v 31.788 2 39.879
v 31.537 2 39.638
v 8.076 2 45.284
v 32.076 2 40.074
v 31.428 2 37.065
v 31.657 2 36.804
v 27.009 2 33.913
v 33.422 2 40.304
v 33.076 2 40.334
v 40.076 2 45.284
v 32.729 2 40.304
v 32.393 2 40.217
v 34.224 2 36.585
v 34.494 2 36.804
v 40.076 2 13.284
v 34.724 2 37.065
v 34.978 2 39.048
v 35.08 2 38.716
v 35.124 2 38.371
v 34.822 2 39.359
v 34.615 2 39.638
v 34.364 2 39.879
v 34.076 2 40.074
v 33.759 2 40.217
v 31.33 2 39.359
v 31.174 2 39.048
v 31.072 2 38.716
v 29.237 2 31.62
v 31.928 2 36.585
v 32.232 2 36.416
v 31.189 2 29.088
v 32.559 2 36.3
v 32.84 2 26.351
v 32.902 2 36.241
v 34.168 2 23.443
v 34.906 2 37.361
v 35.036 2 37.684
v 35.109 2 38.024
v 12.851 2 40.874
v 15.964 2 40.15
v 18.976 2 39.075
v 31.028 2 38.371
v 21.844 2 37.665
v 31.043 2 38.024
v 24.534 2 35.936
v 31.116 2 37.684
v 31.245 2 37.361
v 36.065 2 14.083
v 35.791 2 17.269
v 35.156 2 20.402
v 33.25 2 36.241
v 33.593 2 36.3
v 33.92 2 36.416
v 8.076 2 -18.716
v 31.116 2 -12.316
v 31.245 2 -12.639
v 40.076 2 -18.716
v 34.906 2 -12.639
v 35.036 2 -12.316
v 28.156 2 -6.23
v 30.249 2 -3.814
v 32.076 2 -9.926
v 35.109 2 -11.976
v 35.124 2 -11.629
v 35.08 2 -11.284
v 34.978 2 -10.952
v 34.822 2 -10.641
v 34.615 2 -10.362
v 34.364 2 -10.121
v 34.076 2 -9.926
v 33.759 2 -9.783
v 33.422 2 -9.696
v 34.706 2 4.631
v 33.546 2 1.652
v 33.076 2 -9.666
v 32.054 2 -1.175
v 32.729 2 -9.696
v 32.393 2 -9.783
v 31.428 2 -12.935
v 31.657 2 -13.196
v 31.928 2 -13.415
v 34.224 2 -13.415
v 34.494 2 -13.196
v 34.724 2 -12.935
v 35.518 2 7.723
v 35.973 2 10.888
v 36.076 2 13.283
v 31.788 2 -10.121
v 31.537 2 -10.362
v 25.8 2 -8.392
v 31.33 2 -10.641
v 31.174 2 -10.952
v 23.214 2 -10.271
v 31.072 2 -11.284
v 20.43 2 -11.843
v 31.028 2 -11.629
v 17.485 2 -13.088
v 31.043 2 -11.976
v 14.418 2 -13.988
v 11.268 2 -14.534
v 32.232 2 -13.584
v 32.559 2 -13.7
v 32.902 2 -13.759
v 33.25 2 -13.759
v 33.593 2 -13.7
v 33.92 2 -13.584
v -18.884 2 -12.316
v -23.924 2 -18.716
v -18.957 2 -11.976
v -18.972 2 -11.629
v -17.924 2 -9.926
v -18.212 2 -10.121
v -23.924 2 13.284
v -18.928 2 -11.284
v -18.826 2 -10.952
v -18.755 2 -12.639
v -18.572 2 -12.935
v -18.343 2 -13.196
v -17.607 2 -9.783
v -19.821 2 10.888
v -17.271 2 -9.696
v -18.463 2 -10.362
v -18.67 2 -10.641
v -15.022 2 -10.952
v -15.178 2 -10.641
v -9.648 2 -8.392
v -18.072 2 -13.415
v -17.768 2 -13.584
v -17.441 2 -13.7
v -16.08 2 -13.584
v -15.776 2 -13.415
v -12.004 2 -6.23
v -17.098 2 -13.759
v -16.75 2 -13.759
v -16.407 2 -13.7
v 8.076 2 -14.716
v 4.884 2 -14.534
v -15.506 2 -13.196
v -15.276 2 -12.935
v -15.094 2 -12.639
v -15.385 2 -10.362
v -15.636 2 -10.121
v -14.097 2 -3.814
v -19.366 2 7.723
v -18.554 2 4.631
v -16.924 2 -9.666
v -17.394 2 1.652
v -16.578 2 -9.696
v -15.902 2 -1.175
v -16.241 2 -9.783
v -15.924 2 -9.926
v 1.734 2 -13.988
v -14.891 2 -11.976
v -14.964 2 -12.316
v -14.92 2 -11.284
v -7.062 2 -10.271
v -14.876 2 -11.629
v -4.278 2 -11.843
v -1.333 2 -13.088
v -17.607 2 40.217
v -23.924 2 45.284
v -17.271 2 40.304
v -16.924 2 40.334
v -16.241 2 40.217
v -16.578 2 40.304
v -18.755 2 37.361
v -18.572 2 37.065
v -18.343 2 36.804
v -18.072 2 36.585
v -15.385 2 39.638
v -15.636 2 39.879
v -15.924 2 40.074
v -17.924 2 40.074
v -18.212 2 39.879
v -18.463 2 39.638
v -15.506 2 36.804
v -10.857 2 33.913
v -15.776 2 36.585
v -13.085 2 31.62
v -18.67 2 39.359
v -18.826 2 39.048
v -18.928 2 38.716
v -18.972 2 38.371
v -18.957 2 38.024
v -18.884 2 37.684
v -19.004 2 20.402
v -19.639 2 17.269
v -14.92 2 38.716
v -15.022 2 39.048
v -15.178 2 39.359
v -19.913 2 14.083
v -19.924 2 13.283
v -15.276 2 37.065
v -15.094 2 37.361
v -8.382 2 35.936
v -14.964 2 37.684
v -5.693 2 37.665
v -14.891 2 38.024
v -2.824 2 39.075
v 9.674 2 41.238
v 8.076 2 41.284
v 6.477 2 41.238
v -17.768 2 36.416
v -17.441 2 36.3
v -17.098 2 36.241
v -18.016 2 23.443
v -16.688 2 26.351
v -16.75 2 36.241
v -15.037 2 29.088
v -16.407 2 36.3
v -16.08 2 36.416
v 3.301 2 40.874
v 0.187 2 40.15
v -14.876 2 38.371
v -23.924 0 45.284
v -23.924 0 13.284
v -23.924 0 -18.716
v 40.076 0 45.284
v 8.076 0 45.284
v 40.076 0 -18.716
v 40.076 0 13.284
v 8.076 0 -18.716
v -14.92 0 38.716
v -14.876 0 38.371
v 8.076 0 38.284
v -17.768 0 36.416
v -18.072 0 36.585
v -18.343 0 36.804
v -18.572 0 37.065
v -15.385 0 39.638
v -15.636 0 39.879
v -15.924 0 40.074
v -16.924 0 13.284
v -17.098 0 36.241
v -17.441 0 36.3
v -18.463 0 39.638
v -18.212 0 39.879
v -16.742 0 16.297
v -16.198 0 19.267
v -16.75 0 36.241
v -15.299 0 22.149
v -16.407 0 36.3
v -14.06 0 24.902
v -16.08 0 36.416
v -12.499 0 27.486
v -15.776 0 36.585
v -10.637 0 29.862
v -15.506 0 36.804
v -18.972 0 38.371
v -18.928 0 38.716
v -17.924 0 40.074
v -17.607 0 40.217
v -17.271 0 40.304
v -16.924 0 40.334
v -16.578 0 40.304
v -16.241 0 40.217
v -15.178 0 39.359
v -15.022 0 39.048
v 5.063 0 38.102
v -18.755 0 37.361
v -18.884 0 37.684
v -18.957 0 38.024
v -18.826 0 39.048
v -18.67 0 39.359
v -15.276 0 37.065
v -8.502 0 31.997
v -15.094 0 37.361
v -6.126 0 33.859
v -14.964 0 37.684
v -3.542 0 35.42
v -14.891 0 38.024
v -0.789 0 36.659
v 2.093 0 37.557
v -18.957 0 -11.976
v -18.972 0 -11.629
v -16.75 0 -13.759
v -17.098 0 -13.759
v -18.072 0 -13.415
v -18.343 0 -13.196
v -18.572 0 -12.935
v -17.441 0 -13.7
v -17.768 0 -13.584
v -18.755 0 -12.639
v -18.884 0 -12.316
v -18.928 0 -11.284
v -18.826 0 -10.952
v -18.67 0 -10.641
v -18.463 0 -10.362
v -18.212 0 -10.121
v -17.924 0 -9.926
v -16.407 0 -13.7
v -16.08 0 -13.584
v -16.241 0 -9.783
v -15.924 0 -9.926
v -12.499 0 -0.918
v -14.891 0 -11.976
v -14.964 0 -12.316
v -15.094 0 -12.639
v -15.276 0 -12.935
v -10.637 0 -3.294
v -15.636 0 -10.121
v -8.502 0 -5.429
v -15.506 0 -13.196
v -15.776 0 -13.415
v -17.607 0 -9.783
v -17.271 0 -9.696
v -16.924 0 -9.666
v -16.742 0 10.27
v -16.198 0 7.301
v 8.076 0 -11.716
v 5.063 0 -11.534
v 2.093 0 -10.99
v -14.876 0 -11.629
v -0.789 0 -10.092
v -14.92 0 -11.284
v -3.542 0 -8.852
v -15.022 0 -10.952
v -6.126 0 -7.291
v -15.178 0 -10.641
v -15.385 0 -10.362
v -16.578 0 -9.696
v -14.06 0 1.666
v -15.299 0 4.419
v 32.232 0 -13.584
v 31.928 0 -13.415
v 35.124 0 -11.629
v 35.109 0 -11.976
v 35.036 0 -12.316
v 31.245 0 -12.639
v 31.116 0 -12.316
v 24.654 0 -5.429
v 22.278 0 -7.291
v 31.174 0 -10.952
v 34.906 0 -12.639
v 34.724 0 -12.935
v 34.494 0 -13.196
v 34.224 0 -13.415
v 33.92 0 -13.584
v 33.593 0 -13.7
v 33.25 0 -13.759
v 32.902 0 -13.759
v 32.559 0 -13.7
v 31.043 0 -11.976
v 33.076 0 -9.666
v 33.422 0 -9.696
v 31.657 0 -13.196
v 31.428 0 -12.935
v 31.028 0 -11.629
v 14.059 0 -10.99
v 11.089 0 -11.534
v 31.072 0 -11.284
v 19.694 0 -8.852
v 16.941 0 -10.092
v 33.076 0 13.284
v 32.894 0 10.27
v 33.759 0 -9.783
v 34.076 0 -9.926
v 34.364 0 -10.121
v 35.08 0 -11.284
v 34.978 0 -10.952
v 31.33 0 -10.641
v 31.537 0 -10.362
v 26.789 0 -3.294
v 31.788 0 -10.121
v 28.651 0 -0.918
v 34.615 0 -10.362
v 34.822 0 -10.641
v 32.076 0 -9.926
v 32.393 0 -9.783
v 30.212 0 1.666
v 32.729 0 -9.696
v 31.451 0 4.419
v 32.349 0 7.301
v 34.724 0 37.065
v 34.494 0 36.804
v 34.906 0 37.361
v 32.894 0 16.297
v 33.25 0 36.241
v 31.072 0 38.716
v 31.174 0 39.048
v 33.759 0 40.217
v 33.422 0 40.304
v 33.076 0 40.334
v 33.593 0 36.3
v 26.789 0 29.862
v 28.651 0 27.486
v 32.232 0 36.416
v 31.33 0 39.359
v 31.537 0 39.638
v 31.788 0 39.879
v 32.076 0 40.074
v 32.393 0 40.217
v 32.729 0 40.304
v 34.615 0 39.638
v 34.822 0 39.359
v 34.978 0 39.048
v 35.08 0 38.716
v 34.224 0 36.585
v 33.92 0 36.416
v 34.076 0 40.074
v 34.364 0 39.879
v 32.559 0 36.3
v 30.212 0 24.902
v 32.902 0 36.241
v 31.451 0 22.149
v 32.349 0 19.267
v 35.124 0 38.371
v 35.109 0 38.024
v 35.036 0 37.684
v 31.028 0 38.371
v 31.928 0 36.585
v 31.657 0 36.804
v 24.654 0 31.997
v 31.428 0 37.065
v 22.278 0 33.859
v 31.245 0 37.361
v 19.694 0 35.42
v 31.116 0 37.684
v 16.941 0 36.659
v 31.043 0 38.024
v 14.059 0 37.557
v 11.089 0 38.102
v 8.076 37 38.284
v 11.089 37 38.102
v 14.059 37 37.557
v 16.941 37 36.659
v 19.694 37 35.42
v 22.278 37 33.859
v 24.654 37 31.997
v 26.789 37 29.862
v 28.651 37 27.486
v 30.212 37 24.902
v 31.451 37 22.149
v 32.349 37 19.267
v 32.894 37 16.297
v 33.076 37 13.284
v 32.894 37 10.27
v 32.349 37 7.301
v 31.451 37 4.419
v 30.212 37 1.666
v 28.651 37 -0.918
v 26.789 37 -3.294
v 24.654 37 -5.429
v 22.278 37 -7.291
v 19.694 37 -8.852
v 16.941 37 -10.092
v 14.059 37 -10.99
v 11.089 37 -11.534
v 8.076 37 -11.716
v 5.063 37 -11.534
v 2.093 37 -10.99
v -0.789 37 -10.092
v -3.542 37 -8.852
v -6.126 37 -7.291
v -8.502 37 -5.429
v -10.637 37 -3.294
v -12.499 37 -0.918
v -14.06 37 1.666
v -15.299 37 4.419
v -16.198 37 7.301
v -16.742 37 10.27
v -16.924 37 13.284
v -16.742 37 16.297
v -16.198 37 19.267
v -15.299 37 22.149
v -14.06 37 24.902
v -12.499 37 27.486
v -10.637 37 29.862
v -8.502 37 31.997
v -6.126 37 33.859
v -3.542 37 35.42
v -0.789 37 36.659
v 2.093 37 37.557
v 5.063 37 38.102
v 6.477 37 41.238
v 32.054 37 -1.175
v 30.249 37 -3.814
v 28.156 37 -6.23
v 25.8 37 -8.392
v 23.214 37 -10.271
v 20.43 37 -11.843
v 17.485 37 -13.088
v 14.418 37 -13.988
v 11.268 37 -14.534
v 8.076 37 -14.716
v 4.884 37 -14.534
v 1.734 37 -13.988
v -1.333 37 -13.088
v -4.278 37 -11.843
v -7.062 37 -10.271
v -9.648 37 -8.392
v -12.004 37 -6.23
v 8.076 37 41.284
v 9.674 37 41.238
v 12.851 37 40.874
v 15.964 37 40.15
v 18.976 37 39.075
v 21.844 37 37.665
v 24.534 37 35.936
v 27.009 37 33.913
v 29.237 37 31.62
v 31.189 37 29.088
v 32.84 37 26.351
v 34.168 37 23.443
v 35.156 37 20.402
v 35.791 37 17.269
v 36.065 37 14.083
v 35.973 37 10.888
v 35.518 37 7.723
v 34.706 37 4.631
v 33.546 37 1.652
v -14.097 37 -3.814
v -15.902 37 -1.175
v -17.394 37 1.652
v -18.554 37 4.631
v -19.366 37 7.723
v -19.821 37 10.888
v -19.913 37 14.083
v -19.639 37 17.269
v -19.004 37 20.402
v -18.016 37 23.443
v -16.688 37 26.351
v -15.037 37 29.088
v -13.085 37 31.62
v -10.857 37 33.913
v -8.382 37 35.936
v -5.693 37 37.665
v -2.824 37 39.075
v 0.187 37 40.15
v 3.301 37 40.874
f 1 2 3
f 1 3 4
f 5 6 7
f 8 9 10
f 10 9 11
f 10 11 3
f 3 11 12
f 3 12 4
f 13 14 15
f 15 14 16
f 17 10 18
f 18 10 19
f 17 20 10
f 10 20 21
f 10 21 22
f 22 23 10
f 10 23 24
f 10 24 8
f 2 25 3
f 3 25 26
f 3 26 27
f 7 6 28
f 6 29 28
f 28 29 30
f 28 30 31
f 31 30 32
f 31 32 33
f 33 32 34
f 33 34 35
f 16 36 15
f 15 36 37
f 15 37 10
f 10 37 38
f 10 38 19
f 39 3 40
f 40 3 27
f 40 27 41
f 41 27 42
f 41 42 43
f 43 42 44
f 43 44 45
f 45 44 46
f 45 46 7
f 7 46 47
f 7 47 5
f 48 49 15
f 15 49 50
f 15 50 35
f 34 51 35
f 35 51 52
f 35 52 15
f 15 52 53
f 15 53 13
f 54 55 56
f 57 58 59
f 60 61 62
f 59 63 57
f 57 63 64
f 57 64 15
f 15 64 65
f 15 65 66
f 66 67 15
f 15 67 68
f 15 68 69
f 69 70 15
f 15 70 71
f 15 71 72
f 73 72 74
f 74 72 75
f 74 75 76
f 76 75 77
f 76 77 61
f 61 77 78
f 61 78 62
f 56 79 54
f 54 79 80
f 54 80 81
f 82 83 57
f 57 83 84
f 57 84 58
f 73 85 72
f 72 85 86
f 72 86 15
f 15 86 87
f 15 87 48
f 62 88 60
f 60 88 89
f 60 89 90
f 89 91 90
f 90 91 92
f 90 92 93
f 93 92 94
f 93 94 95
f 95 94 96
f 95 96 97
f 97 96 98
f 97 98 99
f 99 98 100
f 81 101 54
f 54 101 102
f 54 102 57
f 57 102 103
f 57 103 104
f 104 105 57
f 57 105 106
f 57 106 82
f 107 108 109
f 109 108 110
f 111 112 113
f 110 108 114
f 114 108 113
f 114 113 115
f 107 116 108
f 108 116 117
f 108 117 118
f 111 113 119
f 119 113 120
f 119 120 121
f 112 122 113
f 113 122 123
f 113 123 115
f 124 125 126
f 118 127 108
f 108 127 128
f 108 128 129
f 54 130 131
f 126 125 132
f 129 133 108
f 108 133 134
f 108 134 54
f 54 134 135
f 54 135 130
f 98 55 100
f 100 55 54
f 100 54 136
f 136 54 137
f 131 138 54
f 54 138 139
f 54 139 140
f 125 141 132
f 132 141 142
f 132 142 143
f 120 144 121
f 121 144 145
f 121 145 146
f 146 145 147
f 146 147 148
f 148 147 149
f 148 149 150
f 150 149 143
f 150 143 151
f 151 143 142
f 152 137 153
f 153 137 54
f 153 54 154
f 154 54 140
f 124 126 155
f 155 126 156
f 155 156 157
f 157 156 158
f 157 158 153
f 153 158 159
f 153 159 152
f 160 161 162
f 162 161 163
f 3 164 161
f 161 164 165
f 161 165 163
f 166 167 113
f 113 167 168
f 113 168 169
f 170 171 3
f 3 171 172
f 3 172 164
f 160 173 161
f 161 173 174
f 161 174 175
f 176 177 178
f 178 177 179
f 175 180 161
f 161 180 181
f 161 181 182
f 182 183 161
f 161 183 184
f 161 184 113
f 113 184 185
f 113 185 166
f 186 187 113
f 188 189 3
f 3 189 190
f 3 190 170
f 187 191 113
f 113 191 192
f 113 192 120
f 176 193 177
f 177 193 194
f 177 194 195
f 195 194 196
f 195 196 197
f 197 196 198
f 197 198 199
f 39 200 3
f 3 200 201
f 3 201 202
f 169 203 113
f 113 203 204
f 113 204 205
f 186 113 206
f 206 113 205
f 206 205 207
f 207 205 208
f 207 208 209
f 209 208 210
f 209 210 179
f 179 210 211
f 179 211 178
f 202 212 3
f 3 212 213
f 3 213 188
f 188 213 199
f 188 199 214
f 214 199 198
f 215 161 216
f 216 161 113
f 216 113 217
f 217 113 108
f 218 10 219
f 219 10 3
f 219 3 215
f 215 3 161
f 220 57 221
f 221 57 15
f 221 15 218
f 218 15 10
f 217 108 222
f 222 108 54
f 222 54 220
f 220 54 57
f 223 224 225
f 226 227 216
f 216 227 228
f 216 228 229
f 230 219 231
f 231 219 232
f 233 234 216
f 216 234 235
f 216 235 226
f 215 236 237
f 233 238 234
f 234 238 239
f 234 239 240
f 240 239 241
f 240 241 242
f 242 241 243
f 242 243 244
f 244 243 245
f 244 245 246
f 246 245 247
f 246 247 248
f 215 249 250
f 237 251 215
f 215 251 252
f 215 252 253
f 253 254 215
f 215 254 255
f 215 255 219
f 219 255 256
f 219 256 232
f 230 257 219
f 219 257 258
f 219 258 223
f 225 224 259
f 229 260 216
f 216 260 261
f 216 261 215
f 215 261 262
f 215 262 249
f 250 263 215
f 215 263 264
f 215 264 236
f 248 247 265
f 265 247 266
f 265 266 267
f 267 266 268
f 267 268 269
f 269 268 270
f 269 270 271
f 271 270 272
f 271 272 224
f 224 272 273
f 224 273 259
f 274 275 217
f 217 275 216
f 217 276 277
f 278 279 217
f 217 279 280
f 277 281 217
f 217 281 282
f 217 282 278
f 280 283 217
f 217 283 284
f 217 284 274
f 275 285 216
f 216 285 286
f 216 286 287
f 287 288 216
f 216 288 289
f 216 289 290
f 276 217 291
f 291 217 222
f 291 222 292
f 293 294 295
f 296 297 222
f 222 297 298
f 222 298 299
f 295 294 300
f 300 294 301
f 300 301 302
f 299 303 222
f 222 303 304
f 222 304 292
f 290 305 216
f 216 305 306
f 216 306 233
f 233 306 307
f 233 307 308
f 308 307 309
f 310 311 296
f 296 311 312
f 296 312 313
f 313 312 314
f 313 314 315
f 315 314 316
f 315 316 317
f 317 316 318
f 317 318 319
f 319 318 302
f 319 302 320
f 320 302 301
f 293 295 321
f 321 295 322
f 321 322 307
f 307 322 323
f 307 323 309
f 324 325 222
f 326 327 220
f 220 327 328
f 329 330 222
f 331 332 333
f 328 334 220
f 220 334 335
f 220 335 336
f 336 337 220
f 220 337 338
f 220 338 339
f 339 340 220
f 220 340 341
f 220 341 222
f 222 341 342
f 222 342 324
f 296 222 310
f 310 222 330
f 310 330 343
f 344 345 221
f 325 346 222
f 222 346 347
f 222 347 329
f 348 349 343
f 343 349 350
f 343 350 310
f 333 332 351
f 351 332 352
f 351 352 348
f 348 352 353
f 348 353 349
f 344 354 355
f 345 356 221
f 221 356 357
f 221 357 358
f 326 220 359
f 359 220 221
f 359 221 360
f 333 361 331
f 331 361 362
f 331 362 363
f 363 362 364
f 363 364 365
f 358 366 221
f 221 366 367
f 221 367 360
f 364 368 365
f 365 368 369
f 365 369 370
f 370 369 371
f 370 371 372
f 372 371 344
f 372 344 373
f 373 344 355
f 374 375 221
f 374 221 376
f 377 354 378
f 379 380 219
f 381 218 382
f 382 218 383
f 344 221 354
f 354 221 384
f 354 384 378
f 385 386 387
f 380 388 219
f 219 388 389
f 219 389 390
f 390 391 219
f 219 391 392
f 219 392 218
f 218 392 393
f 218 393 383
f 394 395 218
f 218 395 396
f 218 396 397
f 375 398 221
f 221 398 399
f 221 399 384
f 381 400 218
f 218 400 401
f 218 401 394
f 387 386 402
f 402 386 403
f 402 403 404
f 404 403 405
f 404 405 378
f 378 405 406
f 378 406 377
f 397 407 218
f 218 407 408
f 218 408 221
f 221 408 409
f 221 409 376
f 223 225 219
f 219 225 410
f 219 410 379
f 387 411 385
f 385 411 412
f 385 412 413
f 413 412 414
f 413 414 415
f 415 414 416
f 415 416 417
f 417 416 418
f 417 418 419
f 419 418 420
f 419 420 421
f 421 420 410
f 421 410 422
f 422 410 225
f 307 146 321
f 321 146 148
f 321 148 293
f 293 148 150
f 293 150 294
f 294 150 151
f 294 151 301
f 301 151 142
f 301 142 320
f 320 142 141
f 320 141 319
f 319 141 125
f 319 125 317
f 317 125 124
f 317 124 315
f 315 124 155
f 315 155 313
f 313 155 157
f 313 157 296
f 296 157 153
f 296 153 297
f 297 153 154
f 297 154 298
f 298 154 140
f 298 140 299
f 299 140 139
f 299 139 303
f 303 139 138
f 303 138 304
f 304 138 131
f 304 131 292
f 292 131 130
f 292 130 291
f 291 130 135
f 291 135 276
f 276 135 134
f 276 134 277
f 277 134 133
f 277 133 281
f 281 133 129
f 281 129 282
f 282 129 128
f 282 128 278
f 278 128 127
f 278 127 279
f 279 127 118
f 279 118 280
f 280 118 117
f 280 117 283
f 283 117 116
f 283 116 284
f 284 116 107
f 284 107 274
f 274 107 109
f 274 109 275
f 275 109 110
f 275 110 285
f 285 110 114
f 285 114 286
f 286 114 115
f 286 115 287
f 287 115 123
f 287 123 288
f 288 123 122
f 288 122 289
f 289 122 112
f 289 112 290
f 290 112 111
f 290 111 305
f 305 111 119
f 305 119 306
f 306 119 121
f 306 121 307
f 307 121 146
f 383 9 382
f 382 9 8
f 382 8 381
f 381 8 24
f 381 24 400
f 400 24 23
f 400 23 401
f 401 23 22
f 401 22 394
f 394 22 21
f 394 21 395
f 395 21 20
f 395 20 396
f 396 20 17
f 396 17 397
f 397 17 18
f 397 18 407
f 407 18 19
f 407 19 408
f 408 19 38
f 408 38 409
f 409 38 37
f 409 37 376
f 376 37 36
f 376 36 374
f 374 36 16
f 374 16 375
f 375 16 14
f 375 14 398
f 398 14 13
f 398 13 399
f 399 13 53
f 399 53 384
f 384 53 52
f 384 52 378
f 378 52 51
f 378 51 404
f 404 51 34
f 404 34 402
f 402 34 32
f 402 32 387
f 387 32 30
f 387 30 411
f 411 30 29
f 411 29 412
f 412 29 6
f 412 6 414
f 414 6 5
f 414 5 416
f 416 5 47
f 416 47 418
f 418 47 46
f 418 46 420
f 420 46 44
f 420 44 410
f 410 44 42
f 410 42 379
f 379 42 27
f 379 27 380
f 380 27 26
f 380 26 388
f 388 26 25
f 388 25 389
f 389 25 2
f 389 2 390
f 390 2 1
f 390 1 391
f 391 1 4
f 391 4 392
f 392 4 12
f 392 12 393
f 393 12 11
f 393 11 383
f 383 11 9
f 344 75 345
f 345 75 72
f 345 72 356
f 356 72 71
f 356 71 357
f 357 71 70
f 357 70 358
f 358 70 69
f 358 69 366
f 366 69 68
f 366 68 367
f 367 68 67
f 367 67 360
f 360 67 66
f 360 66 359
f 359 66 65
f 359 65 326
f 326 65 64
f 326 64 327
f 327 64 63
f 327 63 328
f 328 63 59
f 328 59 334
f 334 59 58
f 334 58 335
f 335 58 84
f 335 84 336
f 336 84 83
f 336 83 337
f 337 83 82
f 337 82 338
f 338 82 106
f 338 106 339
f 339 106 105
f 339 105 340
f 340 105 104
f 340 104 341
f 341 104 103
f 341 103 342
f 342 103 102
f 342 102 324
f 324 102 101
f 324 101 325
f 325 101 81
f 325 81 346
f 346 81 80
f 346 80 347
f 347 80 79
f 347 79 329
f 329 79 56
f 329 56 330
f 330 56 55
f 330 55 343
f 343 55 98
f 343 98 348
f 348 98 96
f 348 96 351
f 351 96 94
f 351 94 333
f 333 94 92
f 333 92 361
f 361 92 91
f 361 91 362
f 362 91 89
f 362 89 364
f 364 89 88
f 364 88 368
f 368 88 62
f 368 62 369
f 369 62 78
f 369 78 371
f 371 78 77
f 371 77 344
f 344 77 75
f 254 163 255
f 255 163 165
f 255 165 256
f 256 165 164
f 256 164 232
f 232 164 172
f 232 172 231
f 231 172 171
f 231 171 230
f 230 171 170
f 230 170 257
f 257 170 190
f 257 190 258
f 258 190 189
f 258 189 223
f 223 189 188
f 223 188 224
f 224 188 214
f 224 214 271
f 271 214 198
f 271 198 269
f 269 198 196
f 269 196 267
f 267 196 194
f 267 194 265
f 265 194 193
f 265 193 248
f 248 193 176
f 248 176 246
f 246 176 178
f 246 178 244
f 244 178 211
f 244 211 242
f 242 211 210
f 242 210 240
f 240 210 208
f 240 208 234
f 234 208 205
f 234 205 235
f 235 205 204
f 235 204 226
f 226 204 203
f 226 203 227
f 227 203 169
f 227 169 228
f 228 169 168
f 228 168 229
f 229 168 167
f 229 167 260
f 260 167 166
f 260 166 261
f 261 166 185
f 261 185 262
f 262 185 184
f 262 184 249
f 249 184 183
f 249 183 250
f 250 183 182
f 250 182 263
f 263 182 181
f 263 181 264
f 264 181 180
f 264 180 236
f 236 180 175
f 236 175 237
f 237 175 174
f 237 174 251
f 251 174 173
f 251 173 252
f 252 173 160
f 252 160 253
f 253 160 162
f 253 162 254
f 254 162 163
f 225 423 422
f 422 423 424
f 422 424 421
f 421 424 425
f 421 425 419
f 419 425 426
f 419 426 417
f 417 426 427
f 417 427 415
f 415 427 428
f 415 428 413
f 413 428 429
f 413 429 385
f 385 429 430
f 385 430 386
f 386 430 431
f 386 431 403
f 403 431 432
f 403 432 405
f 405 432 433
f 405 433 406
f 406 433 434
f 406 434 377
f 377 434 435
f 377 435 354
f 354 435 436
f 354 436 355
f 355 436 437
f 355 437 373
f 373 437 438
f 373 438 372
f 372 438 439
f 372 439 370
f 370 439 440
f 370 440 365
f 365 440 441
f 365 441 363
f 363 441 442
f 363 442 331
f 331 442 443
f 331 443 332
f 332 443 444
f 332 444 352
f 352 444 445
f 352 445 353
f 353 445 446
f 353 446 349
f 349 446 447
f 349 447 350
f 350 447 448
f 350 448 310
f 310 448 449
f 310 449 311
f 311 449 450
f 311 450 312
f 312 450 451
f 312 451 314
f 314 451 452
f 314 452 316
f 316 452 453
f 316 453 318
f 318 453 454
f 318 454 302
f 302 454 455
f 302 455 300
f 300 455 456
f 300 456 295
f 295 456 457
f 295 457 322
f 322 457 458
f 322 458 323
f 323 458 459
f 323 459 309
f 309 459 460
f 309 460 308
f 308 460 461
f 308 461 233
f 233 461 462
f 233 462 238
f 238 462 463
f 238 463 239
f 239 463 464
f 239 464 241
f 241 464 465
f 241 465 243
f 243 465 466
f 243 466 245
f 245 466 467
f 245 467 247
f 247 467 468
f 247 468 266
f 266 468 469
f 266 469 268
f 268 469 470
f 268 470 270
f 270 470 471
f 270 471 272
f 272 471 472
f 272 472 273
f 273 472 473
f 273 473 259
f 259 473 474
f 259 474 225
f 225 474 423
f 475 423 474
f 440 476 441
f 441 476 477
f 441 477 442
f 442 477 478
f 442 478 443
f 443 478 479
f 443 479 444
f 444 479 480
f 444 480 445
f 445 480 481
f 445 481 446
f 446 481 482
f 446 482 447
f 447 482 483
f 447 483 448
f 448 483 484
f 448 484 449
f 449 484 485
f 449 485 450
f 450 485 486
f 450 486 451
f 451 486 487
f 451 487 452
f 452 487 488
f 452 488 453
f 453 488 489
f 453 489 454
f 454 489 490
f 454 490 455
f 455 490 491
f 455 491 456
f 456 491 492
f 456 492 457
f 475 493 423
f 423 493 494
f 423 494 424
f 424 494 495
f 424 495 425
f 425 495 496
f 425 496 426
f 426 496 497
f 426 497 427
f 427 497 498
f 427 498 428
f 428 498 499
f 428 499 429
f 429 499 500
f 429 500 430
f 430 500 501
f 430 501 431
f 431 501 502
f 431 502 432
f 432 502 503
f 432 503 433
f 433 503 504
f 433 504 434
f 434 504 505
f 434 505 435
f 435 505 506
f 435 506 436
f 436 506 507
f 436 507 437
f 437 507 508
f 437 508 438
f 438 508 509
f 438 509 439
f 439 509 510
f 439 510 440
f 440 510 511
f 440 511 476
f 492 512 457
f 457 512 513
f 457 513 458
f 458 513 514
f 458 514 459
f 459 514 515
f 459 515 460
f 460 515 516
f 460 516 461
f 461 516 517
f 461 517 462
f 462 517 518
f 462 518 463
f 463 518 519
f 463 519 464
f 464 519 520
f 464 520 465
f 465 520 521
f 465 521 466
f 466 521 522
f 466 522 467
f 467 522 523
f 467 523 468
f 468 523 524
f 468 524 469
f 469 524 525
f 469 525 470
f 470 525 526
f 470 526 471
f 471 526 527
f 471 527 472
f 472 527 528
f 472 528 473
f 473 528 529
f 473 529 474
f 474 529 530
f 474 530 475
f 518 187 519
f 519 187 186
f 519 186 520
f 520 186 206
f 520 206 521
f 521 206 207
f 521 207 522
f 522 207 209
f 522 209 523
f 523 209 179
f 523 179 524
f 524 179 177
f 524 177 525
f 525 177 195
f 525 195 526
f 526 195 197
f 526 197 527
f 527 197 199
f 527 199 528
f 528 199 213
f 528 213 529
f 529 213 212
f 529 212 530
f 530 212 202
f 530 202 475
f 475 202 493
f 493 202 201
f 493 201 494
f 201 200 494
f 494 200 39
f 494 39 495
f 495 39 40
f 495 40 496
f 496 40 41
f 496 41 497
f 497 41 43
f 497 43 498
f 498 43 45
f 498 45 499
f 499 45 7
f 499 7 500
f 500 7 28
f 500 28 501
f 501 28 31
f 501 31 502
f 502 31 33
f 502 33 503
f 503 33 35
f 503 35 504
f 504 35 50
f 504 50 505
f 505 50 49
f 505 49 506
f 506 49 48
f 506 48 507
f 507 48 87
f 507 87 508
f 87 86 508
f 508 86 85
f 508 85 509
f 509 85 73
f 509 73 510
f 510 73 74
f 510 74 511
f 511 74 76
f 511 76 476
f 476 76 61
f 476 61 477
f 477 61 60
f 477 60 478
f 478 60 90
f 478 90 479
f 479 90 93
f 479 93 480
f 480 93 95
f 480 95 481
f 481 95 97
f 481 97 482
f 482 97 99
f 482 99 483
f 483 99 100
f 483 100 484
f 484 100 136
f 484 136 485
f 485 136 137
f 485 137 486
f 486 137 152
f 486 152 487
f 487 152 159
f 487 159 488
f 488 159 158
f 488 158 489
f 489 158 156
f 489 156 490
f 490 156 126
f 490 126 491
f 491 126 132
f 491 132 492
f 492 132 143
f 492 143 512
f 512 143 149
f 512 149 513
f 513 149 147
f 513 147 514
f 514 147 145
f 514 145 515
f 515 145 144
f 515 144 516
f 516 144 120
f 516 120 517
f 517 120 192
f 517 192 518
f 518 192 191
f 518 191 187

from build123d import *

# Parameters (mm, degrees)
SKETCH_1_W          = 64
SKETCH_1_H          = 64
EXTRUDE_1_DEPTH     = 2
SKETCH_2_R          = 2.05
SKETCH_2_R_2        = 25
CUT_EXTRUDE_1_DEPTH = 2
EXTRUDE_START       = 35
SKETCH_3_R          = 28
SKETCH_3_R_2        = 25
EXTRUDE_2_DEPTH     = 35


with BuildPart() as part:
    # 草图1 → 凸台-拉伸1 (new body)
    with BuildSketch(Plane(origin=(0, 0, 0), x_dir=(1, 0, 0), z_dir=(0, 1, 0))):
        with Locations((8.075949367, -13.283905967)):
            Rectangle(SKETCH_1_W, SKETCH_1_H)
    extrude(amount=EXTRUDE_1_DEPTH)

    # 草图2 → 切除-拉伸1 (cut)
    with BuildSketch(Plane(origin=(0, 2, 0), x_dir=(1, 0, 0), z_dir=(0, 1, 0))):
        with Locations(Location((-16.924050633, 11.716094033, 0), (0, 0, 270))):
            Circle(SKETCH_2_R)
        with Locations(Location((33.075949367, 11.716094033, 0), (0, 0, 270))):
            Circle(SKETCH_2_R)
        with Locations(Location((-16.924050633, -38.283905967, 0), (0, 0, 270))):
            Circle(SKETCH_2_R)
        with Locations(Location((33.075949367, -38.283905967, 0), (0, 0, 270))):
            Circle(SKETCH_2_R)
        with Locations(Location((8.075949367, -13.283905967, 0), (0, 0, 270))):
            Circle(SKETCH_2_R_2)
    extrude(amount=-CUT_EXTRUDE_1_DEPTH, mode=Mode.SUBTRACT)

    # 草图3 → 凸台-拉伸2 (add)
    with BuildSketch(Plane(origin=(0, 2, 0), x_dir=(1, 0, 0), z_dir=(0, 1, 0)).offset(EXTRUDE_START)):
        with Locations(Location((8.075949367, -13.283905967, 0), (0, 0, 270))):
            Circle(SKETCH_3_R)
        with Locations(Location((8.075949367, -13.283905967, 0), (0, 0, 270))):
            Circle(SKETCH_3_R_2, mode=Mode.SUBTRACT)
    extrude(amount=-EXTRUDE_2_DEPTH)


solid = part.part
